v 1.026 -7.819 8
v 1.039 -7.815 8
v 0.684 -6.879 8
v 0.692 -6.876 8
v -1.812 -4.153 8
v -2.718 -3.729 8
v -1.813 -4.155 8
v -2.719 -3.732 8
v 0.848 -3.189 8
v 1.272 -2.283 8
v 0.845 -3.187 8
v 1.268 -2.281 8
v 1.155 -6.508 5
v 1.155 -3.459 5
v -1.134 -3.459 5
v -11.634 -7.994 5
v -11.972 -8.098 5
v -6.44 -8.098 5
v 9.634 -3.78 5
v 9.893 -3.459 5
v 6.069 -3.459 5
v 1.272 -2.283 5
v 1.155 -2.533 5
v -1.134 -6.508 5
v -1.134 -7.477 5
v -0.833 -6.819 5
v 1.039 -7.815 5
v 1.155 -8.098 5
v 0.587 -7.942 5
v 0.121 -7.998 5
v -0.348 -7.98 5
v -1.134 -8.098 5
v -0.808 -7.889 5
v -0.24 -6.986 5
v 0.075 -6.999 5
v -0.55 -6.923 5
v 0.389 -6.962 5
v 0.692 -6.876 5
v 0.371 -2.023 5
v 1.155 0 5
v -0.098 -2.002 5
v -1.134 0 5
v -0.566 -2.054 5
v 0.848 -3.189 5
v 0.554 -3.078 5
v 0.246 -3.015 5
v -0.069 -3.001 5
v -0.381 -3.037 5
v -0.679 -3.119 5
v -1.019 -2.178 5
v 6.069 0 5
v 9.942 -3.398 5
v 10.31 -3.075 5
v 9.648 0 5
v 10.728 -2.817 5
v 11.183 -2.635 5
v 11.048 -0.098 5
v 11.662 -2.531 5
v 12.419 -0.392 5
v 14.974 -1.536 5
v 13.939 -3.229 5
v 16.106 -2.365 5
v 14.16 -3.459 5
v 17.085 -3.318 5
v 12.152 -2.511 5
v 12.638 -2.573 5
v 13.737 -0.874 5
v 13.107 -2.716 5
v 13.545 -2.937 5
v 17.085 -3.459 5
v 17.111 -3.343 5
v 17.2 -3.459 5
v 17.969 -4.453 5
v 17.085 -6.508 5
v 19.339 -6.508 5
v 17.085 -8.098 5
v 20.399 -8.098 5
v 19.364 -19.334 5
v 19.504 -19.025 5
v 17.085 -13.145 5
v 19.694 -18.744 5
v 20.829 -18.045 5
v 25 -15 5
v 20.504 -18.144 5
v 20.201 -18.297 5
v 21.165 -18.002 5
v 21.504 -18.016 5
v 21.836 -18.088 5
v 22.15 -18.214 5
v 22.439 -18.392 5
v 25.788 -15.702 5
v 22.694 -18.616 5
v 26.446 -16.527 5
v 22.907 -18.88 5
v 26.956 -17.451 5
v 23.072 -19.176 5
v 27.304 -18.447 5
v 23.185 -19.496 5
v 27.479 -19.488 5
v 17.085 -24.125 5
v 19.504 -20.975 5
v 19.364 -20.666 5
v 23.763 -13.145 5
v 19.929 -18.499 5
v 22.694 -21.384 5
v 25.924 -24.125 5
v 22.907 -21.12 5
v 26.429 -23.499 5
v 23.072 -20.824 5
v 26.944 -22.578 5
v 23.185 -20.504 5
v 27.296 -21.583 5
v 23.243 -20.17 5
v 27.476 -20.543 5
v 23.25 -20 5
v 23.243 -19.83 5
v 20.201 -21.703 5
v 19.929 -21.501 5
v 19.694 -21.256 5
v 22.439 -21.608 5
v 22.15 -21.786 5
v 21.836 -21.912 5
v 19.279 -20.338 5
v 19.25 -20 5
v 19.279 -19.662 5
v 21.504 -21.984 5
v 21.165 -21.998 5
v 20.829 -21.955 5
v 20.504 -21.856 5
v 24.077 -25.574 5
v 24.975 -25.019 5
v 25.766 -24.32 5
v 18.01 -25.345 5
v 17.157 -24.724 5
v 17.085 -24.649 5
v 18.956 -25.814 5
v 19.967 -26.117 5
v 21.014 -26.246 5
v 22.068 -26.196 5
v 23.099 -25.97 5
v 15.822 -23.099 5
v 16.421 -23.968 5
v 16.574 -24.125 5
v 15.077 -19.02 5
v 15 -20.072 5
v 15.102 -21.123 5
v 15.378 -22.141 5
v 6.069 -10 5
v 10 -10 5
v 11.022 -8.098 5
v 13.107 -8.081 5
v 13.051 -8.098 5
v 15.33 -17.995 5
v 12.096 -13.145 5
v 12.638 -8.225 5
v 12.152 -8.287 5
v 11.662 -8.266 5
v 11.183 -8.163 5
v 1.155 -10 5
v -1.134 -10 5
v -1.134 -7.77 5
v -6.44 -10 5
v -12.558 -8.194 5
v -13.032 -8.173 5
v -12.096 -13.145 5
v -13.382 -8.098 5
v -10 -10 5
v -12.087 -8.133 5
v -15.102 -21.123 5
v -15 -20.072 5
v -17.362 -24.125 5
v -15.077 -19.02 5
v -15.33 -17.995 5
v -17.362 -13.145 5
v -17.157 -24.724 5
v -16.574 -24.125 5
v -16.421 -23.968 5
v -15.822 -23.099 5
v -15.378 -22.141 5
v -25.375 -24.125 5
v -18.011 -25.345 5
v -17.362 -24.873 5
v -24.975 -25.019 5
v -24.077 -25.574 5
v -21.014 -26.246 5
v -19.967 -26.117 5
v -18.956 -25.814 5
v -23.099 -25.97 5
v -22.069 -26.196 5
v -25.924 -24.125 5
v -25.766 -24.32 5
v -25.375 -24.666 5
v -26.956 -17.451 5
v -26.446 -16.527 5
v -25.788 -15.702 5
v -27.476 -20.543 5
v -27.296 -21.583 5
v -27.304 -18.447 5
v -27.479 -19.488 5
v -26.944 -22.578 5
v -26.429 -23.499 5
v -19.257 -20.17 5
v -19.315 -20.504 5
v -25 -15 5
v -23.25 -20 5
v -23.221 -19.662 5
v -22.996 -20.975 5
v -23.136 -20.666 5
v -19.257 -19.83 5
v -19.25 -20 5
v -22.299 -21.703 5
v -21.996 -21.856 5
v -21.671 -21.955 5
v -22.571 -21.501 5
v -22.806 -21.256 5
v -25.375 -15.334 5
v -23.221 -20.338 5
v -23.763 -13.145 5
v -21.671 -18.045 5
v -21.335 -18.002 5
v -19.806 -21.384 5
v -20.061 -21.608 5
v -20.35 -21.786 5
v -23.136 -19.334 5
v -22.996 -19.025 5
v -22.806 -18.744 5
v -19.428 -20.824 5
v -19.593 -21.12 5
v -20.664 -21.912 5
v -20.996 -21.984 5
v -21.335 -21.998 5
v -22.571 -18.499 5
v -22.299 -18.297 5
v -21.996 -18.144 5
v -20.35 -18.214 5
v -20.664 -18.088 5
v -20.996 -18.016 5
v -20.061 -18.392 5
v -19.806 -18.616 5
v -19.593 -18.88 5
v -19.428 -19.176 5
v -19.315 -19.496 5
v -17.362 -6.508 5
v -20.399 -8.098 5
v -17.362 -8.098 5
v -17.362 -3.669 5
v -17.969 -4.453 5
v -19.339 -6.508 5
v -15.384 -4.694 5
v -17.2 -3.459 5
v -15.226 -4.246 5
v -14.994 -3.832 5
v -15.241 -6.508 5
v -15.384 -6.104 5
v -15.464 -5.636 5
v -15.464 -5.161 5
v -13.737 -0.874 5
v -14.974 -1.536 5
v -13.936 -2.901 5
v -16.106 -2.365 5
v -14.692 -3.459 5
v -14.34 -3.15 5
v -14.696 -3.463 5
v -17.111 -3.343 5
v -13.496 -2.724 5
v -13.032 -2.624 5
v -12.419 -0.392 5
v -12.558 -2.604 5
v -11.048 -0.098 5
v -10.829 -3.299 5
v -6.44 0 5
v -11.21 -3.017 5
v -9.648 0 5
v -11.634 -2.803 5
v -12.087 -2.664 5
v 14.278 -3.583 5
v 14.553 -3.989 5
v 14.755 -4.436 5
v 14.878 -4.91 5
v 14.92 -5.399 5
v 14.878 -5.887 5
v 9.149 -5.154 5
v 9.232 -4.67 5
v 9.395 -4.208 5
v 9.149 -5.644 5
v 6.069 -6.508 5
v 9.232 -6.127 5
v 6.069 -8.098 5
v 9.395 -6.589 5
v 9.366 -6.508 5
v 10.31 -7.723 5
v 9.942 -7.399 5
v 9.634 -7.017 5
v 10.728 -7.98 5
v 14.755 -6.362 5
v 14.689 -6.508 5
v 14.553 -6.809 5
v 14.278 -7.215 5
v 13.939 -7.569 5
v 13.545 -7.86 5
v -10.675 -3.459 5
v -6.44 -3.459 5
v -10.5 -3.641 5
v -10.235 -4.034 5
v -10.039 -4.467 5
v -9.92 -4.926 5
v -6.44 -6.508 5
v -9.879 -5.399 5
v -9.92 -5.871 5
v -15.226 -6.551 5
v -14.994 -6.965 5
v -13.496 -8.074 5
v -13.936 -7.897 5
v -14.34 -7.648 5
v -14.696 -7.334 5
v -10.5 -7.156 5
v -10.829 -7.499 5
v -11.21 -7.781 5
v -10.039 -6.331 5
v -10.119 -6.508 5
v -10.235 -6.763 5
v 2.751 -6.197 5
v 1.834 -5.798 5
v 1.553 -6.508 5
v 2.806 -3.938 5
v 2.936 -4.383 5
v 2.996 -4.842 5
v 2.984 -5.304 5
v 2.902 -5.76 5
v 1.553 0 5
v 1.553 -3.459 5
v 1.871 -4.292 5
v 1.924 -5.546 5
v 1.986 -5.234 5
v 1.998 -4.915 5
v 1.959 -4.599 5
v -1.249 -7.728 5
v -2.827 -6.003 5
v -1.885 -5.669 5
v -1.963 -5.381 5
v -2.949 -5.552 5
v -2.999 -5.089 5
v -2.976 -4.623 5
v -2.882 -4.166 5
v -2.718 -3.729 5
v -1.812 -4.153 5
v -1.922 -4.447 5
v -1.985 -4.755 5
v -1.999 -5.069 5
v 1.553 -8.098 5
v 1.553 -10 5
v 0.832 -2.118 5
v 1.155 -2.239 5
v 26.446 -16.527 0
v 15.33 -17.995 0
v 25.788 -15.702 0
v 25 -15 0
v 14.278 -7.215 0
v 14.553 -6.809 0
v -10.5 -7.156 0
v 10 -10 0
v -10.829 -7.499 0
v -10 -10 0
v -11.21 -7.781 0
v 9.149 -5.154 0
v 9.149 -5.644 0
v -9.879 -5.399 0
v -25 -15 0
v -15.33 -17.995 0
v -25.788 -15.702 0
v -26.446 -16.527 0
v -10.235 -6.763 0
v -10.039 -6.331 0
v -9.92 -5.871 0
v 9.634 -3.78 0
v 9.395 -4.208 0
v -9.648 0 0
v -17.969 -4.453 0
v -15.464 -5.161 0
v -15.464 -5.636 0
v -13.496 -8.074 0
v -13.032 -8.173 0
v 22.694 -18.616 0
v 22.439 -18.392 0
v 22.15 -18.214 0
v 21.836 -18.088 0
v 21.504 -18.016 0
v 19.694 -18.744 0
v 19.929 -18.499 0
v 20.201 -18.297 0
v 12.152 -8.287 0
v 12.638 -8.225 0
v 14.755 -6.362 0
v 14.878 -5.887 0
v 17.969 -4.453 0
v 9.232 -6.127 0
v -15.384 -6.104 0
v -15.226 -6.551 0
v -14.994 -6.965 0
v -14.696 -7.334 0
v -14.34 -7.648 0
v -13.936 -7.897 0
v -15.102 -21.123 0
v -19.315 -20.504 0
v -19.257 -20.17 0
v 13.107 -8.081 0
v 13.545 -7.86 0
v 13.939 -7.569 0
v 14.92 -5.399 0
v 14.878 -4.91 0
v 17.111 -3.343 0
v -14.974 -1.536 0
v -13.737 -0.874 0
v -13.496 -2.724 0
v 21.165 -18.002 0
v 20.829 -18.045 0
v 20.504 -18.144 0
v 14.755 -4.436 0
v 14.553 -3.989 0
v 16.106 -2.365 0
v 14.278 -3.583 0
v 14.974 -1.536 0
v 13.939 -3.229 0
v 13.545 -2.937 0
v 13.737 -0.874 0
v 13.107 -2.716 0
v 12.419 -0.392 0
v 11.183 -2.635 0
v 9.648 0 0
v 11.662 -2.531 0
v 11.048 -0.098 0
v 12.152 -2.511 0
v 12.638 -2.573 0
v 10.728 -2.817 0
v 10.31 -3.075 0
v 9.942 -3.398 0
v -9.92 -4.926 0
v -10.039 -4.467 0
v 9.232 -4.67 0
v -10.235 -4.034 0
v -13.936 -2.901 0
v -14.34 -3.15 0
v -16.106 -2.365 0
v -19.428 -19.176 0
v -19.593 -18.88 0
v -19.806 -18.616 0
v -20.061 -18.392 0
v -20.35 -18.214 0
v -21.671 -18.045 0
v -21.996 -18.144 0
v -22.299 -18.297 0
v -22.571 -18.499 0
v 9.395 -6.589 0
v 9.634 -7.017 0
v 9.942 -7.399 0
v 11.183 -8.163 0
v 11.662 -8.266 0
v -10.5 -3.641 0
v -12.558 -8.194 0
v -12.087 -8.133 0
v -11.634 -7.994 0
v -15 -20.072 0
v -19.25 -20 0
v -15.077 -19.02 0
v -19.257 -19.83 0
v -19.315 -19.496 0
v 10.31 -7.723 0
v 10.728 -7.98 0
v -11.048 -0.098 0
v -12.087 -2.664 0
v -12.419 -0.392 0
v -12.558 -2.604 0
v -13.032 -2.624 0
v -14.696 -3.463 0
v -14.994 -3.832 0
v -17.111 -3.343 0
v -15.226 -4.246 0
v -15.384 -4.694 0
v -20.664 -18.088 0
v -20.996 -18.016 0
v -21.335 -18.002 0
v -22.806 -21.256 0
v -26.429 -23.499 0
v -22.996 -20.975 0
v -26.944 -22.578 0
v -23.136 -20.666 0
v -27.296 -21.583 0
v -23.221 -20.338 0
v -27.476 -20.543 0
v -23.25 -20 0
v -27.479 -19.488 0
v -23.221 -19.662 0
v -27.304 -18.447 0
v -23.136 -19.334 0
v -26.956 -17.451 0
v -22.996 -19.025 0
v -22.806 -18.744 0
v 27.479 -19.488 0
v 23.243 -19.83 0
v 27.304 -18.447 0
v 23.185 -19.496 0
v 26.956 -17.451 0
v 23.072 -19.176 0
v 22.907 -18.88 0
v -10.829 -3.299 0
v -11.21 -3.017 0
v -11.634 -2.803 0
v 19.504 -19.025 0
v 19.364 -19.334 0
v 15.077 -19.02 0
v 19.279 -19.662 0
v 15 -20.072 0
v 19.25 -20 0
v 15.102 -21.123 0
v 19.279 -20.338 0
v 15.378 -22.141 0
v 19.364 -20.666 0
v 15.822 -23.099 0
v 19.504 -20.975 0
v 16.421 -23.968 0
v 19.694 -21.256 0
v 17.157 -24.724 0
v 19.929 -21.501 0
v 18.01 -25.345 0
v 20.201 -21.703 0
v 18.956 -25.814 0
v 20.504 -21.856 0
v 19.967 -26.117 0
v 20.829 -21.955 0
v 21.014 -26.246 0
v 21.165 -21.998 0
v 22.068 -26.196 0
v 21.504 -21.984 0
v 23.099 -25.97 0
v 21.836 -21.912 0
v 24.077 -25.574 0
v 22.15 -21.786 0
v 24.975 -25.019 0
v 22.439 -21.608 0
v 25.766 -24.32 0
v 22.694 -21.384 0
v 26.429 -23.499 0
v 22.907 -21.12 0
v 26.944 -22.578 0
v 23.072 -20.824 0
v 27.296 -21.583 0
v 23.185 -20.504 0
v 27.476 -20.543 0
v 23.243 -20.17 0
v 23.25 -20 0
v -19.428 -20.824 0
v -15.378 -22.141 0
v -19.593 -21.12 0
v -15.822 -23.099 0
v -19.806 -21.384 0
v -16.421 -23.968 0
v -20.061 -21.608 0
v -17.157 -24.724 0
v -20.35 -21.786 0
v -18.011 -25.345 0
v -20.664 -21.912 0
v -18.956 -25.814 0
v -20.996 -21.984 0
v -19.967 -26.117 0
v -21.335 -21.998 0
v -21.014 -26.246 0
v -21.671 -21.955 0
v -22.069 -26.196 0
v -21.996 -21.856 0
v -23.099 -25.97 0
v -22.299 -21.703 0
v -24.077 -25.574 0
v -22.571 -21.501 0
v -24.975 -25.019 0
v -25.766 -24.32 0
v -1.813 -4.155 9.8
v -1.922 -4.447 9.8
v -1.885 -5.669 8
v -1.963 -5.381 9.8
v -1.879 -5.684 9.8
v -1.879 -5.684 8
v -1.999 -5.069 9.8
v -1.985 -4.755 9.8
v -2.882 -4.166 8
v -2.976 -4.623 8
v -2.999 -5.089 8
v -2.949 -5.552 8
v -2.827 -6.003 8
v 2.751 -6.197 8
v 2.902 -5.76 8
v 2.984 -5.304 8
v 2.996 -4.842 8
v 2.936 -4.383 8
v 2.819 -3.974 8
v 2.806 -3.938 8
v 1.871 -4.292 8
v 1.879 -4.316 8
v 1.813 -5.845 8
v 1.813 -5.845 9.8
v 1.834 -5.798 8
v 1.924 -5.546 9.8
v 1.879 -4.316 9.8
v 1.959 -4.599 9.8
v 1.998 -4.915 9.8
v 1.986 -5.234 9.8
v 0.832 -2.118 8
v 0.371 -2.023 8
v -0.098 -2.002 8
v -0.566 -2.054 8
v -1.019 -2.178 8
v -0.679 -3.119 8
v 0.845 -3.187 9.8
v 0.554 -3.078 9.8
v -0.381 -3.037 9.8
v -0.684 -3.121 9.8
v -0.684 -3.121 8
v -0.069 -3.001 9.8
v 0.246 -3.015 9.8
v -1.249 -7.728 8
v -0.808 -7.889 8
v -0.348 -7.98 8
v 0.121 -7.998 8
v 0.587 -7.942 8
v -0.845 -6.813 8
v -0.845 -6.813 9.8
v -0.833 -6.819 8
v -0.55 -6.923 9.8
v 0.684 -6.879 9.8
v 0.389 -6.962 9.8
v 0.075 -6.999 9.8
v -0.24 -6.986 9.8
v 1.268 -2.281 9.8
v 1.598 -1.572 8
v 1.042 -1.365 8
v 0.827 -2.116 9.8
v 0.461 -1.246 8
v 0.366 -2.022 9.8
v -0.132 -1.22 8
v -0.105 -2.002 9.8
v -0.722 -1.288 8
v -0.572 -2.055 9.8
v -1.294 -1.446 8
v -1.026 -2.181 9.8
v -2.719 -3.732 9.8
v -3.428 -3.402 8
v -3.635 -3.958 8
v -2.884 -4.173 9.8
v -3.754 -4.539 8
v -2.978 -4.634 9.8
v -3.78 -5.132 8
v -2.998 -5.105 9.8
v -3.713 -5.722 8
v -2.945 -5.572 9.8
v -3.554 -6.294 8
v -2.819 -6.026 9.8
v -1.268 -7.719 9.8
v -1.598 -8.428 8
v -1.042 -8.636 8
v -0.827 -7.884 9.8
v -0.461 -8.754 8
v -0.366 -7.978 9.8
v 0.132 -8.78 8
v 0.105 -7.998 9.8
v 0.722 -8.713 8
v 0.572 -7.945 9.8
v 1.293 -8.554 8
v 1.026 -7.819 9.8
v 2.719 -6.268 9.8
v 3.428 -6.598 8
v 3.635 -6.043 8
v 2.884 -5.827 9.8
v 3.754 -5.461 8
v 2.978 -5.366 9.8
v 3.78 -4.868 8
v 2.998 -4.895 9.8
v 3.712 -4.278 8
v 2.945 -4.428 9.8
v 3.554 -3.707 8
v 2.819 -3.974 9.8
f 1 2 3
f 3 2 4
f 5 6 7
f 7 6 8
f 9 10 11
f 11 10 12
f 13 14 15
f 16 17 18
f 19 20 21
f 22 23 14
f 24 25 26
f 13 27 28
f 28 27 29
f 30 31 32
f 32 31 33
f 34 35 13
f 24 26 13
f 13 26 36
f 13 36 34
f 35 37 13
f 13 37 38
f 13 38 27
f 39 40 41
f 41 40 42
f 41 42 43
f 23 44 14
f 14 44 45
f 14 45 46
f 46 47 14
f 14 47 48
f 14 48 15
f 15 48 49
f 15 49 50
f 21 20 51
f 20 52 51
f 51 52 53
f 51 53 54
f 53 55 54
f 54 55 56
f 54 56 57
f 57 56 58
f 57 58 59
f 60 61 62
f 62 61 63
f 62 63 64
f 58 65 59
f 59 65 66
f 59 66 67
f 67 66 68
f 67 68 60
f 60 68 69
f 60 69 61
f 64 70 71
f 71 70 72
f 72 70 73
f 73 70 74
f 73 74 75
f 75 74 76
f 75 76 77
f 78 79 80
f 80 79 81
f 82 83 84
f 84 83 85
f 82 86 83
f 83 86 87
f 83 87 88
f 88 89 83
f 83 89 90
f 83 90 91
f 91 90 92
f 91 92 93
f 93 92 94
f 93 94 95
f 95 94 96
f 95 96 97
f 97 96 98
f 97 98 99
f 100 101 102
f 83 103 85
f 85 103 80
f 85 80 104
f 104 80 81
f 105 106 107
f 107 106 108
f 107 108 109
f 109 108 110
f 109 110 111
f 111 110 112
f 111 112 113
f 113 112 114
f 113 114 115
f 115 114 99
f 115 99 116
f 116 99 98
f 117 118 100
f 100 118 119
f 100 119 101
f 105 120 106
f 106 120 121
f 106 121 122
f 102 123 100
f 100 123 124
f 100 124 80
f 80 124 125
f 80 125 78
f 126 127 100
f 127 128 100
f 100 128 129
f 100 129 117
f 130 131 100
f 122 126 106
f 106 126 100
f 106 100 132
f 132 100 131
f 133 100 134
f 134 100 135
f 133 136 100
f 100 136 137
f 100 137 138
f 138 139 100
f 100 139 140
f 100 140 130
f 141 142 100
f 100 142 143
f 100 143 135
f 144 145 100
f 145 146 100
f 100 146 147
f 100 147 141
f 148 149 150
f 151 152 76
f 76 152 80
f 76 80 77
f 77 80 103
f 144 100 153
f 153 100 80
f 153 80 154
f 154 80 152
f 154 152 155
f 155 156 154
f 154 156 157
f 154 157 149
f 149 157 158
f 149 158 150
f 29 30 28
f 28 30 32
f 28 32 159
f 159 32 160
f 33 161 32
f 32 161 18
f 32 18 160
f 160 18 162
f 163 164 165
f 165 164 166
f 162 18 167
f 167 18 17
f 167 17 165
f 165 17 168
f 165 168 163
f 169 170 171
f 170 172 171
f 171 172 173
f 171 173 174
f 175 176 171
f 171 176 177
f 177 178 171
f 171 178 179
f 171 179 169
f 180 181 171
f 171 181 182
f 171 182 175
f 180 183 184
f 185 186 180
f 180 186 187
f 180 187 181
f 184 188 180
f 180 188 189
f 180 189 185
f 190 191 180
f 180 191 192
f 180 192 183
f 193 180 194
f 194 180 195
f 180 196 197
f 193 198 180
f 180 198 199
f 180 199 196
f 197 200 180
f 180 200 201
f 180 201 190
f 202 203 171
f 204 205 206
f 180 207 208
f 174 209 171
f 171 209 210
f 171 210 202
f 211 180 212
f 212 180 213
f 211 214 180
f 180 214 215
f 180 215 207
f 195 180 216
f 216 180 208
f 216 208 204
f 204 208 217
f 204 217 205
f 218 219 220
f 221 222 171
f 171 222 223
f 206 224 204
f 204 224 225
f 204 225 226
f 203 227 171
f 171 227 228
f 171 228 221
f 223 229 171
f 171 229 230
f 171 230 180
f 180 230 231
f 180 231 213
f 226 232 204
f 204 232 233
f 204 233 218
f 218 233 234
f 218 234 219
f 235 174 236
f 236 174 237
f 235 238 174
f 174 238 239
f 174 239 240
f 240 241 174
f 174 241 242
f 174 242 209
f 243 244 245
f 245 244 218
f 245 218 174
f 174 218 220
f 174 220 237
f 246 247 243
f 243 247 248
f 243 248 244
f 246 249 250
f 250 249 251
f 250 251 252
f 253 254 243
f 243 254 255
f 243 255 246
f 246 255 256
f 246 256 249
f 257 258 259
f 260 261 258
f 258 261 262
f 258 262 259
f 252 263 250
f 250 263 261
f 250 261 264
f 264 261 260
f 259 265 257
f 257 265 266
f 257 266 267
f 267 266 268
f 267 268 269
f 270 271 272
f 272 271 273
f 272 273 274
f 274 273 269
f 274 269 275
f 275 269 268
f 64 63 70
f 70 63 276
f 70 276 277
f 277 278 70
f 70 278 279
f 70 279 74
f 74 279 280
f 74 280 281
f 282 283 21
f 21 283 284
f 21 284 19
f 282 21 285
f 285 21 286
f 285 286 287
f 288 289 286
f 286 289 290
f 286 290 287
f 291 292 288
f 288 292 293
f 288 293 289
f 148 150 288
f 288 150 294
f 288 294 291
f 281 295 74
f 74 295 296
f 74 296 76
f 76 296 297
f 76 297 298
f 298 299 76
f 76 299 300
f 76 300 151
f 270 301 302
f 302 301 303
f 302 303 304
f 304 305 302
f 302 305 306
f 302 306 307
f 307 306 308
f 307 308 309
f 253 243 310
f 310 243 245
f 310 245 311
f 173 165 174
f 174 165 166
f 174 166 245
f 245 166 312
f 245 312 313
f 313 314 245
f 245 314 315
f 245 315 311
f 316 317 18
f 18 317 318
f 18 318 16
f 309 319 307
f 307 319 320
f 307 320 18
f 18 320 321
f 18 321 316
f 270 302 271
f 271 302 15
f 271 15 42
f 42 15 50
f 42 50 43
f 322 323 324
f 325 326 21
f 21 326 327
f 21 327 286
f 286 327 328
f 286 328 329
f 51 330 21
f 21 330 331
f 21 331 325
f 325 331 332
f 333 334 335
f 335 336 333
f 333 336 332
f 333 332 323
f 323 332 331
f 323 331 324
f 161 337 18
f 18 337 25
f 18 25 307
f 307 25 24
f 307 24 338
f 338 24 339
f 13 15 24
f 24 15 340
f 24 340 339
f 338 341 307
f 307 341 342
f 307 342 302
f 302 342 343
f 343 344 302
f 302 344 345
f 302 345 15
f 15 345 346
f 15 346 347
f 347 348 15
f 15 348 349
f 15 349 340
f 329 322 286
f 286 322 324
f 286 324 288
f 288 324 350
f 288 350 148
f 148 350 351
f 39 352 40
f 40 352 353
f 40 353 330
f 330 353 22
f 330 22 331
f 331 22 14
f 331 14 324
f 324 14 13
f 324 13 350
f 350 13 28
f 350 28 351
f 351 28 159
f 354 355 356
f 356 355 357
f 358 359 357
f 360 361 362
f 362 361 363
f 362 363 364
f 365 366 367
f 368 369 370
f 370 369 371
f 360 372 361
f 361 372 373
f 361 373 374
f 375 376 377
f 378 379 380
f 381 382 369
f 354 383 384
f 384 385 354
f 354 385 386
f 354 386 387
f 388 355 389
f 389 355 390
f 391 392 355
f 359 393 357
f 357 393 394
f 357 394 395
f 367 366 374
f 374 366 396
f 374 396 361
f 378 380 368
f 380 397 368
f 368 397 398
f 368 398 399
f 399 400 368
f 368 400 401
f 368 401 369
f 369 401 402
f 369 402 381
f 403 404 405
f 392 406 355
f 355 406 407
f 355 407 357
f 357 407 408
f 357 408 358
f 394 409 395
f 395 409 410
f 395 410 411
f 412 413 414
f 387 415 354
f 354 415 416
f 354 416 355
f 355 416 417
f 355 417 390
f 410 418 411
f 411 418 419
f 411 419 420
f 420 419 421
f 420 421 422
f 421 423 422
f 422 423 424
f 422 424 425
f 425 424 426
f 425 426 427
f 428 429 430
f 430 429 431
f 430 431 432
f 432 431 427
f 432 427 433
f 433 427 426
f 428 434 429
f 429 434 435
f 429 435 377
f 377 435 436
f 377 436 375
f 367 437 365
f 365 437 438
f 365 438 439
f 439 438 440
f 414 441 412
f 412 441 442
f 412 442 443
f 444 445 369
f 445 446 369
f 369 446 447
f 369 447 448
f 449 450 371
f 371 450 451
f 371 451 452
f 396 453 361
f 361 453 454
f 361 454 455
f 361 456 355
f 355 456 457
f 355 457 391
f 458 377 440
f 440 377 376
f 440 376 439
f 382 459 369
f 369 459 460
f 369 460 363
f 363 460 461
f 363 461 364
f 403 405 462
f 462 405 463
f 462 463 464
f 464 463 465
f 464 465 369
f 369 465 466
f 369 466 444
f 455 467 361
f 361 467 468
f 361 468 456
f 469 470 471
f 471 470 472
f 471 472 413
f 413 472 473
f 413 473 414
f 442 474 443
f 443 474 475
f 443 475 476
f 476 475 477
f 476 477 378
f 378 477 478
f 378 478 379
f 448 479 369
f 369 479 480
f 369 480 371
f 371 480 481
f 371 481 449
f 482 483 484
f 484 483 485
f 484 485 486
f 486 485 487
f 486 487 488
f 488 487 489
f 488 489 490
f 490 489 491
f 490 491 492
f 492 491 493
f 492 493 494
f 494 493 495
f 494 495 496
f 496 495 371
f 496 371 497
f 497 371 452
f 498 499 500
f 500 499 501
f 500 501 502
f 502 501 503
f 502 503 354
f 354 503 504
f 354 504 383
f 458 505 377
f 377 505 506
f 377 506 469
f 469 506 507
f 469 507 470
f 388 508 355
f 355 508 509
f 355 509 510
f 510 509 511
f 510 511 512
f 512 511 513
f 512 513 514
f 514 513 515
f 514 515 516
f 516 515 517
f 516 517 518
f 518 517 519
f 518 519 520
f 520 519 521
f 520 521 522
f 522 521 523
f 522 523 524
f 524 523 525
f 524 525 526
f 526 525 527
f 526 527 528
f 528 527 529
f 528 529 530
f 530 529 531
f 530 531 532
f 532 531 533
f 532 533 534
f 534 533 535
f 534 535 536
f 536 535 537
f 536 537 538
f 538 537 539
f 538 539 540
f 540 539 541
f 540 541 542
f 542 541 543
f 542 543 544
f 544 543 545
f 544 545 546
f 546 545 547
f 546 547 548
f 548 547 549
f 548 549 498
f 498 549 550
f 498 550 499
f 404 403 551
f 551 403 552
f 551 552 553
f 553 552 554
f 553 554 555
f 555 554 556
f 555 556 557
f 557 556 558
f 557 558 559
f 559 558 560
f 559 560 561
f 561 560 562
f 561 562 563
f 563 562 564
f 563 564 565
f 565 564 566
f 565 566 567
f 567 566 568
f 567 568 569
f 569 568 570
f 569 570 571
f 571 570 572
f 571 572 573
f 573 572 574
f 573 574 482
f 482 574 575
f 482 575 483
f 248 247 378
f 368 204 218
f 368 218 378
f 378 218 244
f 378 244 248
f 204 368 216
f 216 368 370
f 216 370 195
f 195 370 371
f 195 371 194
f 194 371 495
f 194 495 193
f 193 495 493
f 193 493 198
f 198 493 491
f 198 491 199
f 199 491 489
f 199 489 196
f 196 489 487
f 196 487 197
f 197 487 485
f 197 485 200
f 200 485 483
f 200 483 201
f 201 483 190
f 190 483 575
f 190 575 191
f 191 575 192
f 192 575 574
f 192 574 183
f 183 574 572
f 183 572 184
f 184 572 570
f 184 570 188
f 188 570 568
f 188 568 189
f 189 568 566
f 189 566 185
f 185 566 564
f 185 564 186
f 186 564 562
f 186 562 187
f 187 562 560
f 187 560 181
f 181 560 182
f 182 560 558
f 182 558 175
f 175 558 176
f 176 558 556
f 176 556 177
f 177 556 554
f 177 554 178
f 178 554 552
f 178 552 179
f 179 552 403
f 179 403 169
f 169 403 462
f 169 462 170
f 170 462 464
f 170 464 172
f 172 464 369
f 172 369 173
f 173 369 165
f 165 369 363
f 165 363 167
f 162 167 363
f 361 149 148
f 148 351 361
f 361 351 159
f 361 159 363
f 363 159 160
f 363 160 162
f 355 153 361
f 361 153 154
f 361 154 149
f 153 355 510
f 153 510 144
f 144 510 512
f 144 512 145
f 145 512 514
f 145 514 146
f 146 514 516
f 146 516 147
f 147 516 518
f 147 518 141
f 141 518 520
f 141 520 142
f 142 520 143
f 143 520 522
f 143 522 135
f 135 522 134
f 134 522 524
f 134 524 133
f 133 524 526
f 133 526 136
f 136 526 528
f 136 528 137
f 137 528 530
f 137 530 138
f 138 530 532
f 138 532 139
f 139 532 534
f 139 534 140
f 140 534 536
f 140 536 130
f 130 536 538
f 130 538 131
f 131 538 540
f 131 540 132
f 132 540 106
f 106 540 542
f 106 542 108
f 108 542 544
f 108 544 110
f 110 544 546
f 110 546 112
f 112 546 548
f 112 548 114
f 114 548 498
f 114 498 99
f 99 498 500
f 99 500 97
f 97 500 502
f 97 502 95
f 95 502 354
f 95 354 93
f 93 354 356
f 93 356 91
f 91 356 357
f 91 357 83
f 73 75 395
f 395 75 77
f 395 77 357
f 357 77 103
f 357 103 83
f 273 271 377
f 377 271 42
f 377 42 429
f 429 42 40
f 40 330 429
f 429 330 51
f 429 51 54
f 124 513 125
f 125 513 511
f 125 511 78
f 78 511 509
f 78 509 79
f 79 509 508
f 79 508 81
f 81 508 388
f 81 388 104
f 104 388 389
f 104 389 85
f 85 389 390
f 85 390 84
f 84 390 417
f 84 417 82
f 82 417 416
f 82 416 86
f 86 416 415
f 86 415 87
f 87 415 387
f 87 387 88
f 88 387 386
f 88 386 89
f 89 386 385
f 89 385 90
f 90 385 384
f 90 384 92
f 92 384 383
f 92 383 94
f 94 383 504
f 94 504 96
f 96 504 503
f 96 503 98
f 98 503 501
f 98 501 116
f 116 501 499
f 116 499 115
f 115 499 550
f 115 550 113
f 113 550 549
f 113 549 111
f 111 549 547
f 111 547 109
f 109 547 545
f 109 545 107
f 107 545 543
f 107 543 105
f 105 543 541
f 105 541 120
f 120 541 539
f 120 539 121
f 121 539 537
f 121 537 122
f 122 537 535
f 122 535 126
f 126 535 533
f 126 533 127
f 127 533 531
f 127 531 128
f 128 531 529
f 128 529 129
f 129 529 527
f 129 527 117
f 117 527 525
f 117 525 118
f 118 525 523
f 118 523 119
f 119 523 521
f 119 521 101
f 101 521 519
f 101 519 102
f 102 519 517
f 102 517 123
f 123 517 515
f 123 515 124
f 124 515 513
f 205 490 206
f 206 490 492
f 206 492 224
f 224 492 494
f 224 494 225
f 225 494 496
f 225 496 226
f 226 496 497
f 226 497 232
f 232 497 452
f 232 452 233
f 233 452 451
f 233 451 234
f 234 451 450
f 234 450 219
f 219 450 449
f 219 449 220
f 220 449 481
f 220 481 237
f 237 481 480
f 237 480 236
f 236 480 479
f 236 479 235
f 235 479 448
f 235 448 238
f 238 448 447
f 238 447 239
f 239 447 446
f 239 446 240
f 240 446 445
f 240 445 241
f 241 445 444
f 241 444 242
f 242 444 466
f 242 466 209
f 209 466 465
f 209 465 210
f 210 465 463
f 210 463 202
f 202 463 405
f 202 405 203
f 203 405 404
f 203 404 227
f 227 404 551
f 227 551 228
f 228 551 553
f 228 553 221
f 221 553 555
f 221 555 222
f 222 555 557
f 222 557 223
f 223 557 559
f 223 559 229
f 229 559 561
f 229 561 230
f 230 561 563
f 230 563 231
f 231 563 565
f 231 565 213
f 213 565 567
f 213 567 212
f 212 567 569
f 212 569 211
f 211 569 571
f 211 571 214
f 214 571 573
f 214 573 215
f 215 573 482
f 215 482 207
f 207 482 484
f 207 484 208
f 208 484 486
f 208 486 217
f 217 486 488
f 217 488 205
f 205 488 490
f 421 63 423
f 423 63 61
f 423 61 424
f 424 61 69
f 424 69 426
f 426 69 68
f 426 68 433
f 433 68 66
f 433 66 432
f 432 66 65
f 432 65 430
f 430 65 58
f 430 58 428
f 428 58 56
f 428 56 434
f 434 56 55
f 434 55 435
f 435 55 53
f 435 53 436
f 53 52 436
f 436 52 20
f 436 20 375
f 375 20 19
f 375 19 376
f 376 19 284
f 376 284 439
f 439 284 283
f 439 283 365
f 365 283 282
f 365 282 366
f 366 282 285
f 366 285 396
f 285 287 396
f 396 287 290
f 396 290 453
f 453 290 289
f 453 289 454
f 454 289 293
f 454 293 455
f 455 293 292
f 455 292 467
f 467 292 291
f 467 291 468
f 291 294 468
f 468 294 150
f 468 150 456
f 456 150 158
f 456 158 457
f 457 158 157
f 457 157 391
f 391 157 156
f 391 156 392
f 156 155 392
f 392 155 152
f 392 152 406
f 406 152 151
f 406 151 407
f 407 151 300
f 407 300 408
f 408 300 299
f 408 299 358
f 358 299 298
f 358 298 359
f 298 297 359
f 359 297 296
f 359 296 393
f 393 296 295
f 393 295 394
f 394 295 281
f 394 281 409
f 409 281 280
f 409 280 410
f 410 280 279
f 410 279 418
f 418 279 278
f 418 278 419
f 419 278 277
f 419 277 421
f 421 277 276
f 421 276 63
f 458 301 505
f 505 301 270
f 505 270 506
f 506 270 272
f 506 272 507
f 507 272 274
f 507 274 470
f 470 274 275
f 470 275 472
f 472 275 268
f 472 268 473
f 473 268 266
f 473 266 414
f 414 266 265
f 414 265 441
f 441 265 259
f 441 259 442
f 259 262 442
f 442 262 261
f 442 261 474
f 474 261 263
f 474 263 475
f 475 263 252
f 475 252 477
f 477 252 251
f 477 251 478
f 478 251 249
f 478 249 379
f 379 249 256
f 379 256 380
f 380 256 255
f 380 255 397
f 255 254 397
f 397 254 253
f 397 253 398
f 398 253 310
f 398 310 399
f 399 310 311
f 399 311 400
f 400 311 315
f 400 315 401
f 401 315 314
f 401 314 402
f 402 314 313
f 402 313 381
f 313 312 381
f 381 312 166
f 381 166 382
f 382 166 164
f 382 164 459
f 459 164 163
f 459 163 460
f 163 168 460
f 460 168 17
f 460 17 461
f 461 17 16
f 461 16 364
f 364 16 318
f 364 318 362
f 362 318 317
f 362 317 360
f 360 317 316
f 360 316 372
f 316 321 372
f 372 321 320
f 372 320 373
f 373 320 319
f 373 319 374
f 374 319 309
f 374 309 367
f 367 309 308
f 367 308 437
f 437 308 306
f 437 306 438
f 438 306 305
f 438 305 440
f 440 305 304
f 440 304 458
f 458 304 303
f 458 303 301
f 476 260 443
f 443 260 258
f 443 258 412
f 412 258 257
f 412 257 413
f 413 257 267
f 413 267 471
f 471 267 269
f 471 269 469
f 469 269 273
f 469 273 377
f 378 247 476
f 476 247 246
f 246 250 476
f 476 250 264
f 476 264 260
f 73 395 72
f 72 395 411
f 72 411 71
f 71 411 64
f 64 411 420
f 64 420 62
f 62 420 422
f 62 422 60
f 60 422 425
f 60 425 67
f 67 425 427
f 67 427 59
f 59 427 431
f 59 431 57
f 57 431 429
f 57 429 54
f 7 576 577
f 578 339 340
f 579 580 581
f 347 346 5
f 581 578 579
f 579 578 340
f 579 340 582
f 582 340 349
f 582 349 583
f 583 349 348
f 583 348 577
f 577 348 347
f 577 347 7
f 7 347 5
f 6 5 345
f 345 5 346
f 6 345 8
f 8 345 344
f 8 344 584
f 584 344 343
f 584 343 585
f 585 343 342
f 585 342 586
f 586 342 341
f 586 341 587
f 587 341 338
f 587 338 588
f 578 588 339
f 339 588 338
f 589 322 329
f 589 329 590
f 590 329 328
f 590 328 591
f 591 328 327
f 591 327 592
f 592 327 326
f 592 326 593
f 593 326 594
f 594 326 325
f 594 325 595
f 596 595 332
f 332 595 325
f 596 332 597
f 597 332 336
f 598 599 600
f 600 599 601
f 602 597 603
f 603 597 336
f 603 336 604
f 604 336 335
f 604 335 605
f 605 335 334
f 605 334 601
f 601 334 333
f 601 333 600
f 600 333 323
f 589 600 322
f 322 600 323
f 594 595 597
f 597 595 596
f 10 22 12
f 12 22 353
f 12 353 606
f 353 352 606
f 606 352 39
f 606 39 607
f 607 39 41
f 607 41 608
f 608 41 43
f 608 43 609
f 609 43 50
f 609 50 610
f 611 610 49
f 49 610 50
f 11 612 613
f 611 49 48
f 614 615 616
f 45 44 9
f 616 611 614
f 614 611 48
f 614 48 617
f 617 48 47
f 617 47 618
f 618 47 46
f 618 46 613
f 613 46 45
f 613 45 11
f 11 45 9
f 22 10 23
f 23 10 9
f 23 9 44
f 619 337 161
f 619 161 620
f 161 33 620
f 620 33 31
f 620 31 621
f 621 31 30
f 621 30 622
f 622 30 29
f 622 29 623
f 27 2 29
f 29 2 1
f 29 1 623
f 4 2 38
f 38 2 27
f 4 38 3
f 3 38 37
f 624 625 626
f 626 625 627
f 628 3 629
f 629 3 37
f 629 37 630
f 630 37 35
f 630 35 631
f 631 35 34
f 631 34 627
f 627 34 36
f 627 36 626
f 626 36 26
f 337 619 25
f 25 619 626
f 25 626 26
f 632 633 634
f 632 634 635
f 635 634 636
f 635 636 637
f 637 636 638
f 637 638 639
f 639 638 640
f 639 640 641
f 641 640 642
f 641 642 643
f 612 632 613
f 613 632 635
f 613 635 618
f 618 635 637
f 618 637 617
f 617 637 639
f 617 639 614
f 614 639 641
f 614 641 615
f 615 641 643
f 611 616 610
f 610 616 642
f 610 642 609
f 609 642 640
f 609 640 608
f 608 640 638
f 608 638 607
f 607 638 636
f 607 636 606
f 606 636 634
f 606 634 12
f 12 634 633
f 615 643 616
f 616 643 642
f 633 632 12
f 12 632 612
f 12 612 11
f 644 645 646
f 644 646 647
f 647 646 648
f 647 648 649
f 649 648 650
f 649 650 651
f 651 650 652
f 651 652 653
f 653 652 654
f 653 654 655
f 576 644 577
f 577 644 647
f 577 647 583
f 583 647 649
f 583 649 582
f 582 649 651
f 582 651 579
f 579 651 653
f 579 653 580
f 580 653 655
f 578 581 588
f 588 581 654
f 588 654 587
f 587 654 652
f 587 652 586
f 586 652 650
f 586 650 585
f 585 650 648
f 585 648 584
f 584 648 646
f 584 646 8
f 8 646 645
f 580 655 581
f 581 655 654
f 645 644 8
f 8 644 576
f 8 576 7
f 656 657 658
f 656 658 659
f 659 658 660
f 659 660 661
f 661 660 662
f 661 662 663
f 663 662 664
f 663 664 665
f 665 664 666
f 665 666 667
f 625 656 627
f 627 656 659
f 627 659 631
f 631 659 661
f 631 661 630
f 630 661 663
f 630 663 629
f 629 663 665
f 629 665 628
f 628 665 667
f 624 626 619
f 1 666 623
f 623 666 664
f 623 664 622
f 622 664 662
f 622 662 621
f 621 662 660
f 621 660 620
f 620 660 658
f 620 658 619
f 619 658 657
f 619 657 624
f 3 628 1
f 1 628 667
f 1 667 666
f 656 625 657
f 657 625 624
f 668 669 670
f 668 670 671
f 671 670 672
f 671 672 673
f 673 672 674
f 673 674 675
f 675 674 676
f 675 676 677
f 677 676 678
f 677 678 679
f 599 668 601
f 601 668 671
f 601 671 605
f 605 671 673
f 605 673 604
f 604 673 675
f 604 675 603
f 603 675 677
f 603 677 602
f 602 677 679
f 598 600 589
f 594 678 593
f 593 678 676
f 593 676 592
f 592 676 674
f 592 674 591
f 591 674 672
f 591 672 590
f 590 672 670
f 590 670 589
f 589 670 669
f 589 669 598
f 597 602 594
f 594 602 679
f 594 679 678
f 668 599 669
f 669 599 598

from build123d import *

# Parameters (mm, degrees)
SZKIC1_R                    = 2
DODANIE_WYCI_GNI_CIE1_DEPTH = 5
SZKIC2_R                    = 2.797439786
SZKIC2_R_2                  = 2.890763472
WYTNIJ_WYCI_GNI_CIE1_DEPTH  = 10
ZAOKR_GLENIE1_R             = 10
DODANIE_WYCI_GNI_CIE2_DEPTH = 3
OBR_T1_ANGLE                = 45
SZYK_KO_OWY1_COUNT          = 4


# Read off the part's stored shape, not the designer's step: Obrót1
with BuildPart() as part:
    # Szkic1 → Dodanie-wyciągnięcie1 (new body)
    with BuildSketch(Plane.XY):
        with BuildLine():
            Line((-15, 0), (15, 0))
            Line((15, 0), (25, -15))
            ThreePointArc((25, -15), (23.099320571, -25.970135126), (15.330219835, -17.995329753))
            Line((15.330219835, -17.995329753), (10, -10))
            Line((10, -10), (-10, -10))
            Line((-10, -10), (-15.330219835, -17.995329753))
            ThreePointArc((-15.330219835, -17.995329753), (-23.099320571, -25.970135126), (-25, -15))
            Line((-25, -15), (-15, 0))
        make_face()
        with Locations((-21.25, -20)):
            Circle(SZKIC1_R, mode=Mode.SUBTRACT)
        with Locations((21.25, -20)):
            Circle(SZKIC1_R, mode=Mode.SUBTRACT)
    extrude(amount=DODANIE_WYCI_GNI_CIE1_DEPTH)

    # Szkic2 → Wytnij-wyciągnięcie1 (cut)
    with BuildSketch(Plane.XY.offset(5)):
        with Locations((-12.676758493, -5.398654495)):
            Circle(SZKIC2_R)
        with Locations((12.029040905, -5.398654495)):
            Circle(SZKIC2_R_2)
    extrude(amount=-WYTNIJ_WYCI_GNI_CIE1_DEPTH, mode=Mode.SUBTRACT)

    # Zaokrąglenie1
    zaokr_glenie1_edges = [part.edges().sort_by_distance(p)[0] for p in [
        (-15, 0, 2.5),
        (15, 0, 2.5),
    ]]
    fillet(zaokr_glenie1_edges, radius=ZAOKR_GLENIE1_R)

    # Szkic3 → Dodanie-wyciągnięcie2 (add)
    with BuildSketch(Plane.XY.offset(5)):
        with BuildLine():
            Line((-0.67948159, -3.118961784), (-1.019222385, -2.178442676))
            ThreePointArc((-1.019222385, -2.178442676), (0.136924764, -2.003126361), (1.272268294, -2.283139056))
            Line((1.272268294, -2.283139056), (0.848178863, -3.188759371))
            ThreePointArc((0.848178863, -3.188759371), (0.091283176, -3.002084241), (-0.67948159, -3.118961784))
        make_face()
        with BuildLine():
            Line((1.870588598, -4.292258312), (2.805882897, -3.938387468))
            ThreePointArc((2.805882897, -3.938387468), (2.999104941, -5.073277223), (2.750688951, -6.197376422))
            Line((2.750688951, -6.197376422), (1.833792634, -5.798250948))
            ThreePointArc((1.833792634, -5.798250948), (1.999403294, -5.048851482), (1.870588598, -4.292258312))
        make_face()
        with BuildLine():
            Line((0.692421598, -6.876313495), (1.038632398, -7.814470242))
            ThreePointArc((1.038632398, -7.814470242), (-0.113665121, -7.997845933), (-1.248768691, -7.727742062))
            Line((-1.248768691, -7.727742062), (-0.832512461, -6.818494708))
            ThreePointArc((-0.832512461, -6.818494708), (-0.075776747, -6.998563956), (0.692421598, -6.876313495))
        make_face()
        with BuildLine():
            Line((-1.884973157, -5.668487992), (-2.827459736, -6.002731988))
            ThreePointArc((-2.827459736, -6.002731988), (-2.996499858, -4.855125566), (-2.717538259, -3.72917908))
            Line((-2.717538259, -3.72917908), (-1.811692173, -4.152786053))
            ThreePointArc((-1.811692173, -4.152786053), (-1.997666572, -4.903417044), (-1.884973157, -5.668487992))
        make_face()
    extrude(amount=DODANIE_WYCI_GNI_CIE2_DEPTH)

    # Obrót1 outline → Obrót1 (revolve)
    with BuildSketch(Plane(origin=(0, -5, 0), x_dir=(0.42261826174070005, 0.9063077870366497, 0), z_dir=(0.9063077870366497, -0.42261826174070005, 0))):
        Polygon((3, 9.8), (2, 9.8), (2, 8), (3.781968342, 8), align=None)
    obr_t1 = revolve(axis=Axis((0, -5, 0), (0, 0, 1)), revolution_arc=OBR_T1_ANGLE)

    # Szyk kołowy1: Obrót1 ×4 about axis
    szyk_ko_owy1_axis = Axis((0, -5, 5), (0, 0, 1))
    for i in range(1, SZYK_KO_OWY1_COUNT):
        add(obr_t1.rotate(szyk_ko_owy1_axis, i * 360 / SZYK_KO_OWY1_COUNT))


solid = part.part
